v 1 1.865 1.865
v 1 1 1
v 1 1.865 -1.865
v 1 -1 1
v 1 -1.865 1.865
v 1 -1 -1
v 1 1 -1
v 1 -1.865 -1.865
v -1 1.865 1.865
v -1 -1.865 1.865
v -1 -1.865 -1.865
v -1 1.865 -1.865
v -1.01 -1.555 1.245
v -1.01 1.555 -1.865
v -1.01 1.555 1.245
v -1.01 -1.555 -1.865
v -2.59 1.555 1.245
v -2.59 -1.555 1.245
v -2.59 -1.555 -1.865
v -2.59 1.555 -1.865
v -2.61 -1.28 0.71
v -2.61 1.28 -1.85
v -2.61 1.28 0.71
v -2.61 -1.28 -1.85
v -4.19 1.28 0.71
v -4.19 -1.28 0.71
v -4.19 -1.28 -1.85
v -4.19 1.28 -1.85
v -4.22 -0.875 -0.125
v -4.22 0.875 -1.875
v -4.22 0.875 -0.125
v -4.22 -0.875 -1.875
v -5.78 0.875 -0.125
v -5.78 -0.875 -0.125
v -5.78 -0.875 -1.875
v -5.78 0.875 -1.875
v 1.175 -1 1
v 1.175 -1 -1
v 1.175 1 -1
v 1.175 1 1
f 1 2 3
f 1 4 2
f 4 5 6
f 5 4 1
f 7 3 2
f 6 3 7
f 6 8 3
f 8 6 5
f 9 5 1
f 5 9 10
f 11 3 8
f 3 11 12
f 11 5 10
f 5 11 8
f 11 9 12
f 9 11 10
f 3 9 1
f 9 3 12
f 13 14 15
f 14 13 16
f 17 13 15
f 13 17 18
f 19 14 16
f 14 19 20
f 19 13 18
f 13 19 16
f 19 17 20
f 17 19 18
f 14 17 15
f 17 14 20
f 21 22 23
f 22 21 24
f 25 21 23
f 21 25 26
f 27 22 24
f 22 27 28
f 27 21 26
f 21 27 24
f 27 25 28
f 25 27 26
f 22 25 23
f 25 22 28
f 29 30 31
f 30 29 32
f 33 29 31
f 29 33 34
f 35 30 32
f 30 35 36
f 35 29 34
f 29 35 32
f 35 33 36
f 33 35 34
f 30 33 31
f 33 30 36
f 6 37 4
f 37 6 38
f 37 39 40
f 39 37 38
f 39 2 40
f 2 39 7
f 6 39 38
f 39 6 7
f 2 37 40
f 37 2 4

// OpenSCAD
translate([0.0,0,0.0]){
	rotate([0,90.0,0]){
		cube([3.73,3.73,2.0], center = true);
	}
}
translate([-1.8,0,-0.31]){
	rotate([0,90.0,0]){
		cube([3.11,3.11,1.58], center = true);
	}
}
translate([-3.4,0,-0.57]){
	rotate([0,90.0,0]){
		cube([2.56,2.56,1.58], center = true);
	}
}
translate([-5.0,0,-1.0]){
	rotate([0,90.0,0]){
		cube([1.75,1.75,1.56], center = true);
	}
}
translate([0.79,0.0,0.0]){
	rotate([90,0,90]){
		cube([2.0,2.0,0.77], center = true);
	}
}
translate([0,0.0,-0.78]){
	rotate([0,0.0,90]){
		cube([2.0,2.0,0.77], center = true);
	}
}
